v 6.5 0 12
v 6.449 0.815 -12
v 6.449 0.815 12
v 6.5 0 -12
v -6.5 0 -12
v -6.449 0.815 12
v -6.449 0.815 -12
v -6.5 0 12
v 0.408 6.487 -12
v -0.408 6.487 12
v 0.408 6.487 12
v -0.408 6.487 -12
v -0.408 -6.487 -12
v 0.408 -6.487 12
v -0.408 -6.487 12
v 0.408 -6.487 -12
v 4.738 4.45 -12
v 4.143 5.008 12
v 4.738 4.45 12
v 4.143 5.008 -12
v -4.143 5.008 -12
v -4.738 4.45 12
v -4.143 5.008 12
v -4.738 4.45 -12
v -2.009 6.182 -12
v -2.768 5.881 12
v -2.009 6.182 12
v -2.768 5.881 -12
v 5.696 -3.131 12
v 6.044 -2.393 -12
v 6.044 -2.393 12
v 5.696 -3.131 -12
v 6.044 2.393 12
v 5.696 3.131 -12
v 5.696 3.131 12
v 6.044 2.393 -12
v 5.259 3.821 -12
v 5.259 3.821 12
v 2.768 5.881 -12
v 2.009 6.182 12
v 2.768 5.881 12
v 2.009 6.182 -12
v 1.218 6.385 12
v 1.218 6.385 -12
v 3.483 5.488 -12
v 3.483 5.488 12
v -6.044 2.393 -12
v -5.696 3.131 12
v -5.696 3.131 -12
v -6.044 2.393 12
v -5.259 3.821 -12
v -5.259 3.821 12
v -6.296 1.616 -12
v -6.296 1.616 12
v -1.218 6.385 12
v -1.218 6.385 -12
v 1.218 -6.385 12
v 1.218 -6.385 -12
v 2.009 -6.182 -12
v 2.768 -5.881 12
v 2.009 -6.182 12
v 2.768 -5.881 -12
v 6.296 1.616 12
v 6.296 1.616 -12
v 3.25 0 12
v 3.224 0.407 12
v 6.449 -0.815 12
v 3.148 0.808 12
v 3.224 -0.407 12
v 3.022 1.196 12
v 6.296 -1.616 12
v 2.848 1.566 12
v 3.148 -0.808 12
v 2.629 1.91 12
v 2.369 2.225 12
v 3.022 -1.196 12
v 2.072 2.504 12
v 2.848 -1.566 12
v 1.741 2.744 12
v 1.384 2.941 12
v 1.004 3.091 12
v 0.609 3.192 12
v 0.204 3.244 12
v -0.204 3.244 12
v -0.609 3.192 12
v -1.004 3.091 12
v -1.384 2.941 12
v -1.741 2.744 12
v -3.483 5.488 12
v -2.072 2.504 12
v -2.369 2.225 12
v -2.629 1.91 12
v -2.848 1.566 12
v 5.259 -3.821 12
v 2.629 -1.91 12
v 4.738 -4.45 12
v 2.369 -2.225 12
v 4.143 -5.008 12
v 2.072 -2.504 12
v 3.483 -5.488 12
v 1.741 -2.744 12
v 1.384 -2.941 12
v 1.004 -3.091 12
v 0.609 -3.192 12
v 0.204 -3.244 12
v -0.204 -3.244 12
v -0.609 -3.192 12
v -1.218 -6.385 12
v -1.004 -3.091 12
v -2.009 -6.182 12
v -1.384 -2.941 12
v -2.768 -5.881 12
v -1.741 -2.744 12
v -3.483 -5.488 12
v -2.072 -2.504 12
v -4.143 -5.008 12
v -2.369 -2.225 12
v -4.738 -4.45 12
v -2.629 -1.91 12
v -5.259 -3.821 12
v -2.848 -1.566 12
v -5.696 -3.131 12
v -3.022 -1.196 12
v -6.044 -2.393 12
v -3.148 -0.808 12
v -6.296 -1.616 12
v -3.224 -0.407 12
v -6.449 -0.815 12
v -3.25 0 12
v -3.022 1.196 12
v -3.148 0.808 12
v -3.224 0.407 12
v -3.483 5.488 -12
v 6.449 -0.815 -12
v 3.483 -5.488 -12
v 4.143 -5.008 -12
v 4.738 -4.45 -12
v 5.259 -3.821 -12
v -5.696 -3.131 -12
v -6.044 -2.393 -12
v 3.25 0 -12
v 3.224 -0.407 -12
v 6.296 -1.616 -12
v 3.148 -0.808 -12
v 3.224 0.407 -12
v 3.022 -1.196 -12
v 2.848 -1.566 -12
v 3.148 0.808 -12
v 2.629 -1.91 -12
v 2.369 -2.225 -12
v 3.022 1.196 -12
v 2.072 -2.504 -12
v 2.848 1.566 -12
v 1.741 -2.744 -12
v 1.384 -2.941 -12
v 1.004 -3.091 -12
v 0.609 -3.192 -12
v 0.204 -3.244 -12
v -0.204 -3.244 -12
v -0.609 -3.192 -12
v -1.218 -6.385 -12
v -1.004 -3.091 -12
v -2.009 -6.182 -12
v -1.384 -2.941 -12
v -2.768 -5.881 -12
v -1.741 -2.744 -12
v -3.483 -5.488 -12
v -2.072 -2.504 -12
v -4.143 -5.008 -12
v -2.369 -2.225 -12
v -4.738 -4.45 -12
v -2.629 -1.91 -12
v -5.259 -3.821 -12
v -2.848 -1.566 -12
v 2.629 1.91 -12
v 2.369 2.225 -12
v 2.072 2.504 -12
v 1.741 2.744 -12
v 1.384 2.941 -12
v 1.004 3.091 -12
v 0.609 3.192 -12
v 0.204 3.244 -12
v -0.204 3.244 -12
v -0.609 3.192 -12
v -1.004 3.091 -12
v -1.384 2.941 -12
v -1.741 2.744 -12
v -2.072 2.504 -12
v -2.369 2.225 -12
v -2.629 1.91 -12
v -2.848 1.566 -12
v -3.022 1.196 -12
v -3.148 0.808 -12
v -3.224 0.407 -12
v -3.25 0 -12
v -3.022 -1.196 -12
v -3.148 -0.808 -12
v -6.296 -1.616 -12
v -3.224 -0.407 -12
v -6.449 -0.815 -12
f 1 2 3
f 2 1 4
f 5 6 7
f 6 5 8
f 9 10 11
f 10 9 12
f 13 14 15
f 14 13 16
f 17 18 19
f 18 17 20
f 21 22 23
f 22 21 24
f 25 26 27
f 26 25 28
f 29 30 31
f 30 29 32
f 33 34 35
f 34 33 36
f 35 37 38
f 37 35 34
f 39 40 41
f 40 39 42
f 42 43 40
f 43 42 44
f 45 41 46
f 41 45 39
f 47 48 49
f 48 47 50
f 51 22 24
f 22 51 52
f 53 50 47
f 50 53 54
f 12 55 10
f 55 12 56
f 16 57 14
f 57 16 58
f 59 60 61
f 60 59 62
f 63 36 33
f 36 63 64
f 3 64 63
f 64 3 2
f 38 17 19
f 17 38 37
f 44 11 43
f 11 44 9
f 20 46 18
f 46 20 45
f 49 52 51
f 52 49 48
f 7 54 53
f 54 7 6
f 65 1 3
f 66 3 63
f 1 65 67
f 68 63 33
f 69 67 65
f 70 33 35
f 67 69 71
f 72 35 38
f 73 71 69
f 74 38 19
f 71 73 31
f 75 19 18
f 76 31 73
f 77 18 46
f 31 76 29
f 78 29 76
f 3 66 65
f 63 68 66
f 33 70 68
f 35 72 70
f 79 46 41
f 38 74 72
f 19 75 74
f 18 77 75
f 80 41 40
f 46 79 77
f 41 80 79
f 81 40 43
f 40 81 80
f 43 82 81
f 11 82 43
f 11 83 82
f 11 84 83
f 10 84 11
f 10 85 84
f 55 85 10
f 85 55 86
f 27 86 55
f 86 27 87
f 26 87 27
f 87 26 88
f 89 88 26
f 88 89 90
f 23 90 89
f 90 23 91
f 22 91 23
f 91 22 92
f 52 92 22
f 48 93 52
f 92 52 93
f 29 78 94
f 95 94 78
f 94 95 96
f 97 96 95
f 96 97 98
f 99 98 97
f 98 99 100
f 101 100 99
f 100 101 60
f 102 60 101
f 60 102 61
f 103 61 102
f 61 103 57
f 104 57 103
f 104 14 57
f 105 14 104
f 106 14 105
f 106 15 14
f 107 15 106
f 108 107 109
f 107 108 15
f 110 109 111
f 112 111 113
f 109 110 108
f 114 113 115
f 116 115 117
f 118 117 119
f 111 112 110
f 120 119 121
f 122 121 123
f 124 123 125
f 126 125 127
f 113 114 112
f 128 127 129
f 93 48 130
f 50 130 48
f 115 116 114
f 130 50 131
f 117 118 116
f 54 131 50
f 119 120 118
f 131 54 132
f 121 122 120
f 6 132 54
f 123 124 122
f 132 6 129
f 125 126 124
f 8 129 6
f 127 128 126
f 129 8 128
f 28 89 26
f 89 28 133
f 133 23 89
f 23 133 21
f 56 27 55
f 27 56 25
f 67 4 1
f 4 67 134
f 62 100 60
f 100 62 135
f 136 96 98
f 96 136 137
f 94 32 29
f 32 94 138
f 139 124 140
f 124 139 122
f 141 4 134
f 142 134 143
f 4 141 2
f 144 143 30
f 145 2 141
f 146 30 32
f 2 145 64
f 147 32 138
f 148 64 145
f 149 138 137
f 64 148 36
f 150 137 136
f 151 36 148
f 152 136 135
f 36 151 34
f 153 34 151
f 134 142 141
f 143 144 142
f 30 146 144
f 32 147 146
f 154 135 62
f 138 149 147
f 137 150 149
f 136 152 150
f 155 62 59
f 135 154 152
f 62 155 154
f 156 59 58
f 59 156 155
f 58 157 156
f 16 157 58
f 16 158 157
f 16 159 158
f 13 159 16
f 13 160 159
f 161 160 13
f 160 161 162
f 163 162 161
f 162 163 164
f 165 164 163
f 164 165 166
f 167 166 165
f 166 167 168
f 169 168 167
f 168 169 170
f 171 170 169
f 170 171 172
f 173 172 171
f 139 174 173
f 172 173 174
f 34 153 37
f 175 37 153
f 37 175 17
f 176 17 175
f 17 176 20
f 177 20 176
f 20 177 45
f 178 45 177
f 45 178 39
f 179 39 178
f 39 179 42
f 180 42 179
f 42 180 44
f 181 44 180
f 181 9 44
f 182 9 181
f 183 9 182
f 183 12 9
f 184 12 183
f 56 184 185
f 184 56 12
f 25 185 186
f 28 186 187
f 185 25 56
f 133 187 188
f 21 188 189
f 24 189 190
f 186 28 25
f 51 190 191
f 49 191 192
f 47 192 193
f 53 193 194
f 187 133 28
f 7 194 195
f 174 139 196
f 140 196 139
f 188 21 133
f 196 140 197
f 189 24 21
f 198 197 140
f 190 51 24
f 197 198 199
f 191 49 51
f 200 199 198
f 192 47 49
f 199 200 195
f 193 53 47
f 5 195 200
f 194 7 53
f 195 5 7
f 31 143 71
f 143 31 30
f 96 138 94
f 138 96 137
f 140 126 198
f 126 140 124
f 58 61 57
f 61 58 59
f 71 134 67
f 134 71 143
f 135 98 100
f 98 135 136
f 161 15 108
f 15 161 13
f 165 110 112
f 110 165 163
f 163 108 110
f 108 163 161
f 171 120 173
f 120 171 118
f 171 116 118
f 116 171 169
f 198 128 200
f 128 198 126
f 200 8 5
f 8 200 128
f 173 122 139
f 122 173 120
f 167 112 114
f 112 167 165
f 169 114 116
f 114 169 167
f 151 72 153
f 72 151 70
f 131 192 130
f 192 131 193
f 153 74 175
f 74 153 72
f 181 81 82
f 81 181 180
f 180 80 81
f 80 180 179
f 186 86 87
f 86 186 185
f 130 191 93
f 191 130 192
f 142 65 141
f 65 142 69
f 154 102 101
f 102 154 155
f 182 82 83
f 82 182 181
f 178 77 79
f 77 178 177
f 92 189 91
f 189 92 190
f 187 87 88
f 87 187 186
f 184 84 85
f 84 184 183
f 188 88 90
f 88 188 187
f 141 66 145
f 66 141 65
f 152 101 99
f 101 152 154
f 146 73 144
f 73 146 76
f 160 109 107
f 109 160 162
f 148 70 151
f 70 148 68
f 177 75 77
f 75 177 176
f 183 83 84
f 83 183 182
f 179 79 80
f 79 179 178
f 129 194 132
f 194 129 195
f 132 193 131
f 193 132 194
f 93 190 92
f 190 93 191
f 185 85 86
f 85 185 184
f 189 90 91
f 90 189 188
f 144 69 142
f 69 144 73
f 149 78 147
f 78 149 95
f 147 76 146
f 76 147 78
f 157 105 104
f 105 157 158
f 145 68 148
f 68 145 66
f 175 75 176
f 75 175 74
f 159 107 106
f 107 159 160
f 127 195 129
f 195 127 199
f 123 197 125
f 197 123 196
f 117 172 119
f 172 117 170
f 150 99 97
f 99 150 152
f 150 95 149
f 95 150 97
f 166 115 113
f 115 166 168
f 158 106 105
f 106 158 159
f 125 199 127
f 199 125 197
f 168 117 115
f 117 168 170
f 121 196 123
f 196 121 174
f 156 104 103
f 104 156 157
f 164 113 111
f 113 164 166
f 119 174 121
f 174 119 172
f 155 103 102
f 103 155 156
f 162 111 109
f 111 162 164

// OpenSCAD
$fn = 50;


difference() {
	union() {
		translate(v = [0, 0, -12.0000000000]) {
			cylinder(h = 24, r = 6.5000000000);
		}
	}
	union() {
		translate(v = [0, 0, -100.0000000000]) {
			cylinder(h = 200, r = 3.2500000000);
		}
	}
}
